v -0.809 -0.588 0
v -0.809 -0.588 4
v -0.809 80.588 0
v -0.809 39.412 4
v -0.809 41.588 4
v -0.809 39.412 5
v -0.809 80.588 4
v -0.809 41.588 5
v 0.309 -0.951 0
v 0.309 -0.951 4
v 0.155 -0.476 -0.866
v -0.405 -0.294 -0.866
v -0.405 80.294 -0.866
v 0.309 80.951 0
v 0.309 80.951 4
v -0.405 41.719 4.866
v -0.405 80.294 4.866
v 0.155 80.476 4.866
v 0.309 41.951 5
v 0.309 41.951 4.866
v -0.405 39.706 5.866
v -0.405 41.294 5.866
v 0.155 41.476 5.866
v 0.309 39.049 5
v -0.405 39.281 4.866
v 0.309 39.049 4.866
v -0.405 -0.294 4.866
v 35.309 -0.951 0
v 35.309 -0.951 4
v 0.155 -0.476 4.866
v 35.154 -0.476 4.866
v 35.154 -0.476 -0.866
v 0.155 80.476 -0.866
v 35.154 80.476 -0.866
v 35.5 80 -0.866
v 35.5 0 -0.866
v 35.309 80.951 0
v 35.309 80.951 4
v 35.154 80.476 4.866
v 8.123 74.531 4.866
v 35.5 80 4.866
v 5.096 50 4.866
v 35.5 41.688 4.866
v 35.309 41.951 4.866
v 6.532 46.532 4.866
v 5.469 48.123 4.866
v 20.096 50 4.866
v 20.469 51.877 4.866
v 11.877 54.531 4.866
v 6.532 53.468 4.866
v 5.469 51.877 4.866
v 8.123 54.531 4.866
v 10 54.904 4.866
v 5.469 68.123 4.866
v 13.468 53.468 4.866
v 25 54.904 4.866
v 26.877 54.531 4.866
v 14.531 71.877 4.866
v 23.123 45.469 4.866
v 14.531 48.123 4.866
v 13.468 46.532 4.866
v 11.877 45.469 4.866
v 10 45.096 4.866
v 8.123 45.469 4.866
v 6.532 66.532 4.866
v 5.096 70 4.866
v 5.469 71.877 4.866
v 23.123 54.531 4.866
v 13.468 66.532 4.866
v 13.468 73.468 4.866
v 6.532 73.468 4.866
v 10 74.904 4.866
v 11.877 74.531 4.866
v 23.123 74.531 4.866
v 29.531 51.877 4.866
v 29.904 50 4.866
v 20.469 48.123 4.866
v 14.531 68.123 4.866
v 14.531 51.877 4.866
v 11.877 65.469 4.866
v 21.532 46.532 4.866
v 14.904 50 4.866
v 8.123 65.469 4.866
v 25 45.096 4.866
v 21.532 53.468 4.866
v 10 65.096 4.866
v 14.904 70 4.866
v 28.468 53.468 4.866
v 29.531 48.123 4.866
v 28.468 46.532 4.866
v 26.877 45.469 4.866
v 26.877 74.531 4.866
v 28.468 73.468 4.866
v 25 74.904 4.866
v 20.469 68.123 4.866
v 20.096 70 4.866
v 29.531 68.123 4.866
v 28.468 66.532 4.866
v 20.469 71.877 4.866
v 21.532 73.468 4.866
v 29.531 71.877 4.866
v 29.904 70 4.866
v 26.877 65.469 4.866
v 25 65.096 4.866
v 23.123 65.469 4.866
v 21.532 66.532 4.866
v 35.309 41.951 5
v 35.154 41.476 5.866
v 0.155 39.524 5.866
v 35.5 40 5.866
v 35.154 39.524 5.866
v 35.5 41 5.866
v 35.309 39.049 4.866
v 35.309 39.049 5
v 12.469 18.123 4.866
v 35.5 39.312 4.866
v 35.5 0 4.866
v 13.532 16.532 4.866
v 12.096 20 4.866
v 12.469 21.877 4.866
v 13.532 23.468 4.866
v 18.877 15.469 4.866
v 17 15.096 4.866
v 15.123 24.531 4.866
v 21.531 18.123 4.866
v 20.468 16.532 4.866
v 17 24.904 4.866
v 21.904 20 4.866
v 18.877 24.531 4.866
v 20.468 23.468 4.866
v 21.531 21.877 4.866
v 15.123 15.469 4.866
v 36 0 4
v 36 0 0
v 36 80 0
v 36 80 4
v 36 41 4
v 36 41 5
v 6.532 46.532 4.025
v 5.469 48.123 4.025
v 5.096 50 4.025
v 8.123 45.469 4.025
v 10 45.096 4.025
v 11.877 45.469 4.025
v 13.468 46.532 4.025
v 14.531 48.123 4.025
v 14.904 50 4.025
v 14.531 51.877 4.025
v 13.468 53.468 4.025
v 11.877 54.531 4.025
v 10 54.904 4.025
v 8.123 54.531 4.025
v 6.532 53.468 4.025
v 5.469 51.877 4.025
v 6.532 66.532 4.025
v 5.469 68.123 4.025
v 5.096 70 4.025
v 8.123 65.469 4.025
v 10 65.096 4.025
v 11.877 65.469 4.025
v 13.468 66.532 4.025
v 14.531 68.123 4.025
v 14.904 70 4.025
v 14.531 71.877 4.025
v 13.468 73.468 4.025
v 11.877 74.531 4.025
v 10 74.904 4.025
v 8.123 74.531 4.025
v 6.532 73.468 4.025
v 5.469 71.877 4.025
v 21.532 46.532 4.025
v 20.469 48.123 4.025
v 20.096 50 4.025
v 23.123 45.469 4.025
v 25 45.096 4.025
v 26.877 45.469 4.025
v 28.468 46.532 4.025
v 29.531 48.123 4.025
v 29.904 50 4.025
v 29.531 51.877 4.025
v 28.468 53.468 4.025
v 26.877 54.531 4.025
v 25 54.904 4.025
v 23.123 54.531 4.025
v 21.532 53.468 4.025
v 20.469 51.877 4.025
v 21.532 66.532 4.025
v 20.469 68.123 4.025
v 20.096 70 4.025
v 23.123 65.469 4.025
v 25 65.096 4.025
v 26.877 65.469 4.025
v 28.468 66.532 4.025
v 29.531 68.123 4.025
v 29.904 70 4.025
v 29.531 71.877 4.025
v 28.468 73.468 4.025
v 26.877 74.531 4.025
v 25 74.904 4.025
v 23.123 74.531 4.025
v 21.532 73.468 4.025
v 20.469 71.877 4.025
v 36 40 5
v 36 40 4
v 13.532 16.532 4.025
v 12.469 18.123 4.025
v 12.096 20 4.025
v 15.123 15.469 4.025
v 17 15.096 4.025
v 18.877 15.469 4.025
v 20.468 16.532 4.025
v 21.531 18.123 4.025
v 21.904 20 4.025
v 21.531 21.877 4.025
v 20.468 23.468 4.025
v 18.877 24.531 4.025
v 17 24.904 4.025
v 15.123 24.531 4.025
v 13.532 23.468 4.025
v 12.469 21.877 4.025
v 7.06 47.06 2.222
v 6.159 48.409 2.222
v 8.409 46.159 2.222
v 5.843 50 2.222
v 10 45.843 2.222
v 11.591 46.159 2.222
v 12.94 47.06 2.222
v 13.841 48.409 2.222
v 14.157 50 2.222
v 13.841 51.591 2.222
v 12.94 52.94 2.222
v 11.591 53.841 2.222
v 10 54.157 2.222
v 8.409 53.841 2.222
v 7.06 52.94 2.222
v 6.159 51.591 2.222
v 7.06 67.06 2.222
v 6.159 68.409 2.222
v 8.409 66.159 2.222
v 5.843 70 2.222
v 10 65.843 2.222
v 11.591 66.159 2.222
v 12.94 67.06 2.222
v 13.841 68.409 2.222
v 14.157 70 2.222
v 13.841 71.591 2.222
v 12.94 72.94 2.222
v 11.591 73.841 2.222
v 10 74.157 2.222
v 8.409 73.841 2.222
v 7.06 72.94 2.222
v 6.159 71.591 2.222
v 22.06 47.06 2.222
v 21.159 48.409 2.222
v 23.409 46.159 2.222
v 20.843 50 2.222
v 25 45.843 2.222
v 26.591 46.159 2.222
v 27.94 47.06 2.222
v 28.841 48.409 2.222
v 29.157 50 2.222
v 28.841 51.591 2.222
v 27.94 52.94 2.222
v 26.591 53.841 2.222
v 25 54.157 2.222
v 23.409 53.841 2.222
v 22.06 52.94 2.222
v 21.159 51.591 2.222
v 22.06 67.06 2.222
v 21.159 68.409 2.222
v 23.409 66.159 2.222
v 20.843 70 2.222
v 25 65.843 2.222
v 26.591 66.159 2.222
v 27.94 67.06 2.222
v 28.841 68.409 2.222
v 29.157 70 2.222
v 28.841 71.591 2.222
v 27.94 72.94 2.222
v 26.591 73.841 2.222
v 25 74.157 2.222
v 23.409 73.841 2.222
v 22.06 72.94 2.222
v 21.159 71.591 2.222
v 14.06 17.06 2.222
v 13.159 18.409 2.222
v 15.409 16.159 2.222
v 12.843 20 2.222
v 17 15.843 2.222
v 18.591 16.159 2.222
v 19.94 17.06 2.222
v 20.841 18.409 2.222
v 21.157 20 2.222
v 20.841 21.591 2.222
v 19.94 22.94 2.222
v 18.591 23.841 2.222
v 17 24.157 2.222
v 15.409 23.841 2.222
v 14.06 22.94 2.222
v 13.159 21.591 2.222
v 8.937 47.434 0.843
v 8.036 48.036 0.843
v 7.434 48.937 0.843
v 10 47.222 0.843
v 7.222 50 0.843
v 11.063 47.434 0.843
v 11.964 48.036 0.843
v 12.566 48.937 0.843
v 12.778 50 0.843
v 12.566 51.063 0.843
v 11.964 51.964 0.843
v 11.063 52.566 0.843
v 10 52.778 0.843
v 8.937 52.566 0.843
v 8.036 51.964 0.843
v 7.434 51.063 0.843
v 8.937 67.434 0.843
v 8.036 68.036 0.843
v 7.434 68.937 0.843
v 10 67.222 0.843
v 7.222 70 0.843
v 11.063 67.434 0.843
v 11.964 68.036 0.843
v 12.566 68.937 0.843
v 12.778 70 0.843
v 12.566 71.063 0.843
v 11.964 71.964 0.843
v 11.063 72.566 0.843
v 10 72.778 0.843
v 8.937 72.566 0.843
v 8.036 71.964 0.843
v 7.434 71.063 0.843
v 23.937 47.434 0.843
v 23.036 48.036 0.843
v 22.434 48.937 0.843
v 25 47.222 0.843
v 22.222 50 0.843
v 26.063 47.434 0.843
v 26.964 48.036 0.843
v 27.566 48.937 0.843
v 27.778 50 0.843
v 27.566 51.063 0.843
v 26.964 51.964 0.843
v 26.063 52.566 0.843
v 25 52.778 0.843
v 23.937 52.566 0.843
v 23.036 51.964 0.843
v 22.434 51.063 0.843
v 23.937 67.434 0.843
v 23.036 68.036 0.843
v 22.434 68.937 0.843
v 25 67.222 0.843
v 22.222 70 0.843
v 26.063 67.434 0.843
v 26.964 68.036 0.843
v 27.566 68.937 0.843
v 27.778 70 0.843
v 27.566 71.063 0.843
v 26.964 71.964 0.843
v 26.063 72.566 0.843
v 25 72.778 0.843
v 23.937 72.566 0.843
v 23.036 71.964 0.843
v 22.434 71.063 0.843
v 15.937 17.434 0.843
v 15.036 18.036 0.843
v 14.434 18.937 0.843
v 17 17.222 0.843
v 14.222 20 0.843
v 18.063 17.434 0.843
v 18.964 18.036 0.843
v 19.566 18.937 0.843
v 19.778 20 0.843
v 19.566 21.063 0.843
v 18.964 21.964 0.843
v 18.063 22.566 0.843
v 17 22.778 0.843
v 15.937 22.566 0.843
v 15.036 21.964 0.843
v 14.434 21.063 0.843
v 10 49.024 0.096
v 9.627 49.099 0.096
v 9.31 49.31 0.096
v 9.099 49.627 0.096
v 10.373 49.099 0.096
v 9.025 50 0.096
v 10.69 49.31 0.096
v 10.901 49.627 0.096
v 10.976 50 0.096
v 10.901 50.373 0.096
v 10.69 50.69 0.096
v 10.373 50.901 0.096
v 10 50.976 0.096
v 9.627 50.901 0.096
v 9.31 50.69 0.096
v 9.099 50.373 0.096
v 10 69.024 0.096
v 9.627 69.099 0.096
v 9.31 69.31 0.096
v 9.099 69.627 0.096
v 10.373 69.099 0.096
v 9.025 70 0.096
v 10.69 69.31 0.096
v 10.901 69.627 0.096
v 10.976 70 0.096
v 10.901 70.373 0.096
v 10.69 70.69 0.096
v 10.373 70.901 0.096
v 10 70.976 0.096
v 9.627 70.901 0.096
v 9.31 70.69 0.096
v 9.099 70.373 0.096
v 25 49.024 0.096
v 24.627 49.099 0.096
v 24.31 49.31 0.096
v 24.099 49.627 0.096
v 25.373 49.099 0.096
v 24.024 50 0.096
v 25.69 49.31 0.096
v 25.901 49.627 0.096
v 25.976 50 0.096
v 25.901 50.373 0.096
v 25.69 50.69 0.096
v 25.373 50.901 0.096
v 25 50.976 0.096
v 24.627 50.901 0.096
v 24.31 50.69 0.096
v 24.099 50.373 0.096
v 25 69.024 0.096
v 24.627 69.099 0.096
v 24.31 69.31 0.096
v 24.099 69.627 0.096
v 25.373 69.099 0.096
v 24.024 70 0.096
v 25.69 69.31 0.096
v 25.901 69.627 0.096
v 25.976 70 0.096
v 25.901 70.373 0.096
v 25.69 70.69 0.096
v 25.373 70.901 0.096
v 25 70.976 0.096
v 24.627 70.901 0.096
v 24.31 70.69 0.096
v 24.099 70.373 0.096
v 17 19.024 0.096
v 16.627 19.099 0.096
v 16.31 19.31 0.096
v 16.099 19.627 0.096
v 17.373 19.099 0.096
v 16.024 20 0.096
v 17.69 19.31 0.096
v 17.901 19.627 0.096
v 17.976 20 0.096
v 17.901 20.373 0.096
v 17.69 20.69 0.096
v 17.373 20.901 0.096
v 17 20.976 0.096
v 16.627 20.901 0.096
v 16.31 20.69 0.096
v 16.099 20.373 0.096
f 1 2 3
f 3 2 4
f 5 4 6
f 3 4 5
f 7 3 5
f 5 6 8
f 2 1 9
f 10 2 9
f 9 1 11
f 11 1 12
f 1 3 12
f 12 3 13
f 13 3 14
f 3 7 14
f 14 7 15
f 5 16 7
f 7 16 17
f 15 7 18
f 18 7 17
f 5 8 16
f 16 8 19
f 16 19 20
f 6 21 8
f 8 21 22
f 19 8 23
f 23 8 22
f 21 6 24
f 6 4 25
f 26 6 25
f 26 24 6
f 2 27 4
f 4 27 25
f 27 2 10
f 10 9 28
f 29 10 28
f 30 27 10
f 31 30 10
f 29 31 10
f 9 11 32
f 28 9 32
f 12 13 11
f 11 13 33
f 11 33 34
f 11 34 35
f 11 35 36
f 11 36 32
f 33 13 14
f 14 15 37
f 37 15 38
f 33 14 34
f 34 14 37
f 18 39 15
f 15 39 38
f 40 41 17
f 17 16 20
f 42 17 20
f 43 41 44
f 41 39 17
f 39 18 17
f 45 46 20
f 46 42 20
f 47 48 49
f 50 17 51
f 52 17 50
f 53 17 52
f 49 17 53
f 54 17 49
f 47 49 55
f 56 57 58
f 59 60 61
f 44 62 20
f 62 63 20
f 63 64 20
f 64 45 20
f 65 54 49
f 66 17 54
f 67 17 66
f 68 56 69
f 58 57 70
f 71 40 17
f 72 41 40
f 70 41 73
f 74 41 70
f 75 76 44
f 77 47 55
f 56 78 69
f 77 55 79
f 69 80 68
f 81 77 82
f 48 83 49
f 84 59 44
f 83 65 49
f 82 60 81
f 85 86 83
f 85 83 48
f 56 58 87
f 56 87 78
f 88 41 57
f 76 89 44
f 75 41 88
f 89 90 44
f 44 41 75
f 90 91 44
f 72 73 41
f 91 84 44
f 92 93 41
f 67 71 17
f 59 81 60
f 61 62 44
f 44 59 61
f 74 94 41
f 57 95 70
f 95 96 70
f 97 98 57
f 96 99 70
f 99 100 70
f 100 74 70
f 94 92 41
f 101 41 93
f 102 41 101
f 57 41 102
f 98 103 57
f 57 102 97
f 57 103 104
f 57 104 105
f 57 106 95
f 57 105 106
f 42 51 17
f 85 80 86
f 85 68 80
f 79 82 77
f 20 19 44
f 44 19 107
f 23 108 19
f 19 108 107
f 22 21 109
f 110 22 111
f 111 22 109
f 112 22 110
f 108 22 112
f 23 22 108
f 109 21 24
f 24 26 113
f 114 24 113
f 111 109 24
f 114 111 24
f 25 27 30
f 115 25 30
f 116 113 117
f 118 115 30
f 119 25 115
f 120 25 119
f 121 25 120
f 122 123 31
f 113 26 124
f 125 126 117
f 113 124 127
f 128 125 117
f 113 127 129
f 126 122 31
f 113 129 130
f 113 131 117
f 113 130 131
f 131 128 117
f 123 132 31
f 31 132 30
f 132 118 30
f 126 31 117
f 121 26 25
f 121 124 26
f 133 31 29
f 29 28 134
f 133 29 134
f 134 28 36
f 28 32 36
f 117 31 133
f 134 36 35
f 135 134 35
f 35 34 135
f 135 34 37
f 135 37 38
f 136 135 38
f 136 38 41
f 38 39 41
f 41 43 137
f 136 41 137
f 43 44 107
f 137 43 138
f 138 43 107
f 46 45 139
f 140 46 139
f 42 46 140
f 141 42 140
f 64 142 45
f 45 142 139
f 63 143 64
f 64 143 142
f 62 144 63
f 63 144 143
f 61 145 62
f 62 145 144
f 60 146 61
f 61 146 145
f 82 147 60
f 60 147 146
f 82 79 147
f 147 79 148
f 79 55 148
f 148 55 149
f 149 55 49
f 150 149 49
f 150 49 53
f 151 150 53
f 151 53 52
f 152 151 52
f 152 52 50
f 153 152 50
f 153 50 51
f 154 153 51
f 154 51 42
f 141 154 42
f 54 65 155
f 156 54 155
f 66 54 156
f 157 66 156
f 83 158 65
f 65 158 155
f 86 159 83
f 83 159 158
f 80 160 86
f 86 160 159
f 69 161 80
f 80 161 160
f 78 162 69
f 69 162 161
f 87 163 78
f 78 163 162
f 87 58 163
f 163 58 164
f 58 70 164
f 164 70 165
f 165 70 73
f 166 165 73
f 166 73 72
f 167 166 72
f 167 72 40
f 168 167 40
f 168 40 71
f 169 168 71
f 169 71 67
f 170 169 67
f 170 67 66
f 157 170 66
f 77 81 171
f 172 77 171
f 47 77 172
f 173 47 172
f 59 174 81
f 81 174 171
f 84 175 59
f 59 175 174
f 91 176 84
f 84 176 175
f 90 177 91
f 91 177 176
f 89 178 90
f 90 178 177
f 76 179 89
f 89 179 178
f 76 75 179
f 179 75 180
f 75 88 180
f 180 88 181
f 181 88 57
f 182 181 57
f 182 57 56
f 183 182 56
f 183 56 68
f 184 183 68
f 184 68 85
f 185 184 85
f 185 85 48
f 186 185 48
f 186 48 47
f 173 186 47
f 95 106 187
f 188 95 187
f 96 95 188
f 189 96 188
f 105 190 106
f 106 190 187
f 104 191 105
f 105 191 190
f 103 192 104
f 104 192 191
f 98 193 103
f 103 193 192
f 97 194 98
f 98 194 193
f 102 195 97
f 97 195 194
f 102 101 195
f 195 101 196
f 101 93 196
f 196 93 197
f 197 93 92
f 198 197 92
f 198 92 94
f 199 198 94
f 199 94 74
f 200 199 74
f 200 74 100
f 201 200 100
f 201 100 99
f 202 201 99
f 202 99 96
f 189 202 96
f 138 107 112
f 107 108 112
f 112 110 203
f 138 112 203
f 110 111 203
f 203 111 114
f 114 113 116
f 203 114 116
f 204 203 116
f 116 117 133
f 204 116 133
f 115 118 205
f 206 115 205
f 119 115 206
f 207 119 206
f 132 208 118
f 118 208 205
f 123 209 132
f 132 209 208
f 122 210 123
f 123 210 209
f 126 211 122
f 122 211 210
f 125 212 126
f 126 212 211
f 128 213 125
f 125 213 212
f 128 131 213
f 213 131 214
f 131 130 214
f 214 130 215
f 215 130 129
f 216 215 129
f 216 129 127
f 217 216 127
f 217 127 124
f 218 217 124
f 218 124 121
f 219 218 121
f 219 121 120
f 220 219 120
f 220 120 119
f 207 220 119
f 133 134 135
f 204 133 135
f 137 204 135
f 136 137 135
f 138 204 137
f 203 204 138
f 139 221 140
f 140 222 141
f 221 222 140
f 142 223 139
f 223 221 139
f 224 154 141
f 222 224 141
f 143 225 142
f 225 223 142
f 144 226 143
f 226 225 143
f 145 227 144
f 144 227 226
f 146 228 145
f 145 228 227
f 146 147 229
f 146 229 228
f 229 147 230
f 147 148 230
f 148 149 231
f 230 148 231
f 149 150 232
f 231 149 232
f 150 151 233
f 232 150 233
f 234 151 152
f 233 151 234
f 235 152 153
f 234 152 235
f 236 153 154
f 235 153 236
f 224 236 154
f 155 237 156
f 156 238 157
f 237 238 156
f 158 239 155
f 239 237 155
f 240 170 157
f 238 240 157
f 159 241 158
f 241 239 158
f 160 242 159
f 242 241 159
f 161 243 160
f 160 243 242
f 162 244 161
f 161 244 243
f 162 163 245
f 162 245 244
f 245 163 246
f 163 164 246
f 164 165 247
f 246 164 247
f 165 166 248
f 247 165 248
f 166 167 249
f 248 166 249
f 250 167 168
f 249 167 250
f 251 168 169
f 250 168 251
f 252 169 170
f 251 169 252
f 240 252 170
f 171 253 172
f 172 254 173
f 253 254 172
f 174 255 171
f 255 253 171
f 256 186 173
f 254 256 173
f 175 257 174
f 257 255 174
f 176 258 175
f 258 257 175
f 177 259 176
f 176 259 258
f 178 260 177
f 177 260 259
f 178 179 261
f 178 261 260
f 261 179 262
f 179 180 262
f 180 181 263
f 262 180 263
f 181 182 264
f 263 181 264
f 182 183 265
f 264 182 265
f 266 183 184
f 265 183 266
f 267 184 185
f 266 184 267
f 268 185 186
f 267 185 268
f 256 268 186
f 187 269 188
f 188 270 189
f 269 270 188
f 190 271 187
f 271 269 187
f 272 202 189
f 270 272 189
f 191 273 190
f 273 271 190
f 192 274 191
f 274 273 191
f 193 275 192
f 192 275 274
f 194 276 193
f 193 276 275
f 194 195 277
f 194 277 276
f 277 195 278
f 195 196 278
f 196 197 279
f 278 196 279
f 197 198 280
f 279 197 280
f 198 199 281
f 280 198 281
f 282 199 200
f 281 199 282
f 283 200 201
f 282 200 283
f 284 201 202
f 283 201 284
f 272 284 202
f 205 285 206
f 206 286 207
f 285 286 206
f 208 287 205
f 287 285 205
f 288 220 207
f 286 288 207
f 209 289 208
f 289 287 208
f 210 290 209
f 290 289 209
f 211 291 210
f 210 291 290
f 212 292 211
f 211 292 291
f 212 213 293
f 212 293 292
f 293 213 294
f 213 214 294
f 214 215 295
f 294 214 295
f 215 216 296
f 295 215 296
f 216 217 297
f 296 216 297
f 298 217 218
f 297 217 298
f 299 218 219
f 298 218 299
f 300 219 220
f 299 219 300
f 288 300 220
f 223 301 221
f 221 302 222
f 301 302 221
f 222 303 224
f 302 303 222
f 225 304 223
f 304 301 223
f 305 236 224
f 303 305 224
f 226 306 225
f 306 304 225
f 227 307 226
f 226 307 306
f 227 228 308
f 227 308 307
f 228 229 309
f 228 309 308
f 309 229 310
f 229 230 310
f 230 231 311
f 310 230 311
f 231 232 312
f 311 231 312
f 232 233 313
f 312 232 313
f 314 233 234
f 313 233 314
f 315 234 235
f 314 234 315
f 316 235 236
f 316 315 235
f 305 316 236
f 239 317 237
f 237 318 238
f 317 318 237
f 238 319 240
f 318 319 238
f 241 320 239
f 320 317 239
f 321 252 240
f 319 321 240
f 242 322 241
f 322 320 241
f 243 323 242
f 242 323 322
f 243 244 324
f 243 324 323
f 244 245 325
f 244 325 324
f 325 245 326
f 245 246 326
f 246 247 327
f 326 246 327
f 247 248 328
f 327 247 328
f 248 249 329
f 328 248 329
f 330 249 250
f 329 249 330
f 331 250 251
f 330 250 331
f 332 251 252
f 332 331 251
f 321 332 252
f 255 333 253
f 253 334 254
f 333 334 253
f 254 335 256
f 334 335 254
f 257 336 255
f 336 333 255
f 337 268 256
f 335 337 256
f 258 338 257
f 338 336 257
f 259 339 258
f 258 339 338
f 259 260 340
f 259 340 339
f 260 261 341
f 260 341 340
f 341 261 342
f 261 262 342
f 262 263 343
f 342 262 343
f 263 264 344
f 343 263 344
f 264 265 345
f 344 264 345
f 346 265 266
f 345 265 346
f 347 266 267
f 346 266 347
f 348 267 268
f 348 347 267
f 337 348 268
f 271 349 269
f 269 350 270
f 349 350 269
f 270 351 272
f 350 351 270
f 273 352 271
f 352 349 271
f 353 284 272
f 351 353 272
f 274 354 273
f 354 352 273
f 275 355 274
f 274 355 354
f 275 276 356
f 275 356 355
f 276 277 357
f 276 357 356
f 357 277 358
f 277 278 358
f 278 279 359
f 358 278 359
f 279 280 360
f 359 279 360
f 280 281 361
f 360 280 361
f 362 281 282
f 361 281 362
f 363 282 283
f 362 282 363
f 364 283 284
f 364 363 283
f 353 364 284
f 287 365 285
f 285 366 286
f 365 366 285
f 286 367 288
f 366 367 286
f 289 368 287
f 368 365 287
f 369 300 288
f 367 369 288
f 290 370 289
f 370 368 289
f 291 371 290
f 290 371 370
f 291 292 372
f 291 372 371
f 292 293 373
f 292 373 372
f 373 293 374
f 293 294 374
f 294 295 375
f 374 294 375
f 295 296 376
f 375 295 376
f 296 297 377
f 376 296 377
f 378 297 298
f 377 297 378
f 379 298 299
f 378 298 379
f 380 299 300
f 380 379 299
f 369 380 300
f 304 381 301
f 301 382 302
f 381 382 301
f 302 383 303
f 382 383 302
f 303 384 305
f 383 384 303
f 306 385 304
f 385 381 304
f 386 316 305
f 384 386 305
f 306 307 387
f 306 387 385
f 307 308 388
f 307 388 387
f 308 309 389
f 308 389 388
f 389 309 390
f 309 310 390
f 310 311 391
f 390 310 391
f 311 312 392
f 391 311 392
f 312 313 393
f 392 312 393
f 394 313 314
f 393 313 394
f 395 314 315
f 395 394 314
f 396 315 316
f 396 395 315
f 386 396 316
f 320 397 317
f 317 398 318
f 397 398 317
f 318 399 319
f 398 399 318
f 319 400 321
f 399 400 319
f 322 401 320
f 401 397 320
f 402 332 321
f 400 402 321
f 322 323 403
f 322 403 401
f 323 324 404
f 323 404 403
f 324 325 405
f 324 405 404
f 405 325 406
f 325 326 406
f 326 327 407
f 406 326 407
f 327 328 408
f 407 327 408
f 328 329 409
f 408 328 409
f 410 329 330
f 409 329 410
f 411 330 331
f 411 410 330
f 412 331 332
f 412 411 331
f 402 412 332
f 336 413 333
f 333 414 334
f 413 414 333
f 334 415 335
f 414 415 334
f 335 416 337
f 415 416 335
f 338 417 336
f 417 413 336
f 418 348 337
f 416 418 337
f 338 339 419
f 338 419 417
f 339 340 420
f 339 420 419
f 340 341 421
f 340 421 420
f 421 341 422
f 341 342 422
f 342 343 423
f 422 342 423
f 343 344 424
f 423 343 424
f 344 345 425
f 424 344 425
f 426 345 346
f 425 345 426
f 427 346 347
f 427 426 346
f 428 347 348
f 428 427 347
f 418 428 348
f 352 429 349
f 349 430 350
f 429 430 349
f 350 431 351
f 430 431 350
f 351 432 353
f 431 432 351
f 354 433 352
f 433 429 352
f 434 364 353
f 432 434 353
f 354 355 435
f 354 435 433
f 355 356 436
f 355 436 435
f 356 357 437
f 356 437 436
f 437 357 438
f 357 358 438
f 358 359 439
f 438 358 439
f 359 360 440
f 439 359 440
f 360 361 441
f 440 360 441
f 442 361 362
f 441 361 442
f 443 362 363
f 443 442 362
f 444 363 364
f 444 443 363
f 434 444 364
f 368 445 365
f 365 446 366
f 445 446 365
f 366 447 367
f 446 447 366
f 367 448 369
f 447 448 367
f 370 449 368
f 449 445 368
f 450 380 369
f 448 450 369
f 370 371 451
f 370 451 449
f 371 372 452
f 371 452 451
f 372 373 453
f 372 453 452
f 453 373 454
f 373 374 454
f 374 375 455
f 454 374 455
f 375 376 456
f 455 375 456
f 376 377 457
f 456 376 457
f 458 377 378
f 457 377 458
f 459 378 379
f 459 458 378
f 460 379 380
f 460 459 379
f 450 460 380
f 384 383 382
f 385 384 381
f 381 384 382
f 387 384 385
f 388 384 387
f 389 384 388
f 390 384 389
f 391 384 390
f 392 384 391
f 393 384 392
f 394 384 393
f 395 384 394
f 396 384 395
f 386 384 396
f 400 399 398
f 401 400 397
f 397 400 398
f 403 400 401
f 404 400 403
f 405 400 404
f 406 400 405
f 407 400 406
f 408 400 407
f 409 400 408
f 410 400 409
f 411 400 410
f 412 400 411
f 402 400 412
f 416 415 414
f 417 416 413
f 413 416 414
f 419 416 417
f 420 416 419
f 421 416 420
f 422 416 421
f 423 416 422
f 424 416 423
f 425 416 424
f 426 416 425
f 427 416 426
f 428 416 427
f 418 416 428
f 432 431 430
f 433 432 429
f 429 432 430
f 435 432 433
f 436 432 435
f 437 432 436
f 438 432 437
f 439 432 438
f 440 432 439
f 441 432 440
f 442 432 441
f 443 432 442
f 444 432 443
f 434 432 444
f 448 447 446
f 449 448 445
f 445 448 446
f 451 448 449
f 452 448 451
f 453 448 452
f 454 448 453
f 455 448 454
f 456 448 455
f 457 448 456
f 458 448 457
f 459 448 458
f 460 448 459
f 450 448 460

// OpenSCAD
// Loguncov Maxim 13.12.13

//$fn=128;


translate([0,40,0])
minkowski()
{cube([35,1,5]);
sphere(1);
}

difference() {

//основа
minkowski()
{cube([35,80,4]);
sphere(1);
}

//отверстия
translate([17,20,5])sphere(5);

translate([10,70,5])sphere(5);
translate([25,50,5])sphere(5);
translate([25,70,5])sphere(5);
translate([10,50,5])sphere(5);



}
